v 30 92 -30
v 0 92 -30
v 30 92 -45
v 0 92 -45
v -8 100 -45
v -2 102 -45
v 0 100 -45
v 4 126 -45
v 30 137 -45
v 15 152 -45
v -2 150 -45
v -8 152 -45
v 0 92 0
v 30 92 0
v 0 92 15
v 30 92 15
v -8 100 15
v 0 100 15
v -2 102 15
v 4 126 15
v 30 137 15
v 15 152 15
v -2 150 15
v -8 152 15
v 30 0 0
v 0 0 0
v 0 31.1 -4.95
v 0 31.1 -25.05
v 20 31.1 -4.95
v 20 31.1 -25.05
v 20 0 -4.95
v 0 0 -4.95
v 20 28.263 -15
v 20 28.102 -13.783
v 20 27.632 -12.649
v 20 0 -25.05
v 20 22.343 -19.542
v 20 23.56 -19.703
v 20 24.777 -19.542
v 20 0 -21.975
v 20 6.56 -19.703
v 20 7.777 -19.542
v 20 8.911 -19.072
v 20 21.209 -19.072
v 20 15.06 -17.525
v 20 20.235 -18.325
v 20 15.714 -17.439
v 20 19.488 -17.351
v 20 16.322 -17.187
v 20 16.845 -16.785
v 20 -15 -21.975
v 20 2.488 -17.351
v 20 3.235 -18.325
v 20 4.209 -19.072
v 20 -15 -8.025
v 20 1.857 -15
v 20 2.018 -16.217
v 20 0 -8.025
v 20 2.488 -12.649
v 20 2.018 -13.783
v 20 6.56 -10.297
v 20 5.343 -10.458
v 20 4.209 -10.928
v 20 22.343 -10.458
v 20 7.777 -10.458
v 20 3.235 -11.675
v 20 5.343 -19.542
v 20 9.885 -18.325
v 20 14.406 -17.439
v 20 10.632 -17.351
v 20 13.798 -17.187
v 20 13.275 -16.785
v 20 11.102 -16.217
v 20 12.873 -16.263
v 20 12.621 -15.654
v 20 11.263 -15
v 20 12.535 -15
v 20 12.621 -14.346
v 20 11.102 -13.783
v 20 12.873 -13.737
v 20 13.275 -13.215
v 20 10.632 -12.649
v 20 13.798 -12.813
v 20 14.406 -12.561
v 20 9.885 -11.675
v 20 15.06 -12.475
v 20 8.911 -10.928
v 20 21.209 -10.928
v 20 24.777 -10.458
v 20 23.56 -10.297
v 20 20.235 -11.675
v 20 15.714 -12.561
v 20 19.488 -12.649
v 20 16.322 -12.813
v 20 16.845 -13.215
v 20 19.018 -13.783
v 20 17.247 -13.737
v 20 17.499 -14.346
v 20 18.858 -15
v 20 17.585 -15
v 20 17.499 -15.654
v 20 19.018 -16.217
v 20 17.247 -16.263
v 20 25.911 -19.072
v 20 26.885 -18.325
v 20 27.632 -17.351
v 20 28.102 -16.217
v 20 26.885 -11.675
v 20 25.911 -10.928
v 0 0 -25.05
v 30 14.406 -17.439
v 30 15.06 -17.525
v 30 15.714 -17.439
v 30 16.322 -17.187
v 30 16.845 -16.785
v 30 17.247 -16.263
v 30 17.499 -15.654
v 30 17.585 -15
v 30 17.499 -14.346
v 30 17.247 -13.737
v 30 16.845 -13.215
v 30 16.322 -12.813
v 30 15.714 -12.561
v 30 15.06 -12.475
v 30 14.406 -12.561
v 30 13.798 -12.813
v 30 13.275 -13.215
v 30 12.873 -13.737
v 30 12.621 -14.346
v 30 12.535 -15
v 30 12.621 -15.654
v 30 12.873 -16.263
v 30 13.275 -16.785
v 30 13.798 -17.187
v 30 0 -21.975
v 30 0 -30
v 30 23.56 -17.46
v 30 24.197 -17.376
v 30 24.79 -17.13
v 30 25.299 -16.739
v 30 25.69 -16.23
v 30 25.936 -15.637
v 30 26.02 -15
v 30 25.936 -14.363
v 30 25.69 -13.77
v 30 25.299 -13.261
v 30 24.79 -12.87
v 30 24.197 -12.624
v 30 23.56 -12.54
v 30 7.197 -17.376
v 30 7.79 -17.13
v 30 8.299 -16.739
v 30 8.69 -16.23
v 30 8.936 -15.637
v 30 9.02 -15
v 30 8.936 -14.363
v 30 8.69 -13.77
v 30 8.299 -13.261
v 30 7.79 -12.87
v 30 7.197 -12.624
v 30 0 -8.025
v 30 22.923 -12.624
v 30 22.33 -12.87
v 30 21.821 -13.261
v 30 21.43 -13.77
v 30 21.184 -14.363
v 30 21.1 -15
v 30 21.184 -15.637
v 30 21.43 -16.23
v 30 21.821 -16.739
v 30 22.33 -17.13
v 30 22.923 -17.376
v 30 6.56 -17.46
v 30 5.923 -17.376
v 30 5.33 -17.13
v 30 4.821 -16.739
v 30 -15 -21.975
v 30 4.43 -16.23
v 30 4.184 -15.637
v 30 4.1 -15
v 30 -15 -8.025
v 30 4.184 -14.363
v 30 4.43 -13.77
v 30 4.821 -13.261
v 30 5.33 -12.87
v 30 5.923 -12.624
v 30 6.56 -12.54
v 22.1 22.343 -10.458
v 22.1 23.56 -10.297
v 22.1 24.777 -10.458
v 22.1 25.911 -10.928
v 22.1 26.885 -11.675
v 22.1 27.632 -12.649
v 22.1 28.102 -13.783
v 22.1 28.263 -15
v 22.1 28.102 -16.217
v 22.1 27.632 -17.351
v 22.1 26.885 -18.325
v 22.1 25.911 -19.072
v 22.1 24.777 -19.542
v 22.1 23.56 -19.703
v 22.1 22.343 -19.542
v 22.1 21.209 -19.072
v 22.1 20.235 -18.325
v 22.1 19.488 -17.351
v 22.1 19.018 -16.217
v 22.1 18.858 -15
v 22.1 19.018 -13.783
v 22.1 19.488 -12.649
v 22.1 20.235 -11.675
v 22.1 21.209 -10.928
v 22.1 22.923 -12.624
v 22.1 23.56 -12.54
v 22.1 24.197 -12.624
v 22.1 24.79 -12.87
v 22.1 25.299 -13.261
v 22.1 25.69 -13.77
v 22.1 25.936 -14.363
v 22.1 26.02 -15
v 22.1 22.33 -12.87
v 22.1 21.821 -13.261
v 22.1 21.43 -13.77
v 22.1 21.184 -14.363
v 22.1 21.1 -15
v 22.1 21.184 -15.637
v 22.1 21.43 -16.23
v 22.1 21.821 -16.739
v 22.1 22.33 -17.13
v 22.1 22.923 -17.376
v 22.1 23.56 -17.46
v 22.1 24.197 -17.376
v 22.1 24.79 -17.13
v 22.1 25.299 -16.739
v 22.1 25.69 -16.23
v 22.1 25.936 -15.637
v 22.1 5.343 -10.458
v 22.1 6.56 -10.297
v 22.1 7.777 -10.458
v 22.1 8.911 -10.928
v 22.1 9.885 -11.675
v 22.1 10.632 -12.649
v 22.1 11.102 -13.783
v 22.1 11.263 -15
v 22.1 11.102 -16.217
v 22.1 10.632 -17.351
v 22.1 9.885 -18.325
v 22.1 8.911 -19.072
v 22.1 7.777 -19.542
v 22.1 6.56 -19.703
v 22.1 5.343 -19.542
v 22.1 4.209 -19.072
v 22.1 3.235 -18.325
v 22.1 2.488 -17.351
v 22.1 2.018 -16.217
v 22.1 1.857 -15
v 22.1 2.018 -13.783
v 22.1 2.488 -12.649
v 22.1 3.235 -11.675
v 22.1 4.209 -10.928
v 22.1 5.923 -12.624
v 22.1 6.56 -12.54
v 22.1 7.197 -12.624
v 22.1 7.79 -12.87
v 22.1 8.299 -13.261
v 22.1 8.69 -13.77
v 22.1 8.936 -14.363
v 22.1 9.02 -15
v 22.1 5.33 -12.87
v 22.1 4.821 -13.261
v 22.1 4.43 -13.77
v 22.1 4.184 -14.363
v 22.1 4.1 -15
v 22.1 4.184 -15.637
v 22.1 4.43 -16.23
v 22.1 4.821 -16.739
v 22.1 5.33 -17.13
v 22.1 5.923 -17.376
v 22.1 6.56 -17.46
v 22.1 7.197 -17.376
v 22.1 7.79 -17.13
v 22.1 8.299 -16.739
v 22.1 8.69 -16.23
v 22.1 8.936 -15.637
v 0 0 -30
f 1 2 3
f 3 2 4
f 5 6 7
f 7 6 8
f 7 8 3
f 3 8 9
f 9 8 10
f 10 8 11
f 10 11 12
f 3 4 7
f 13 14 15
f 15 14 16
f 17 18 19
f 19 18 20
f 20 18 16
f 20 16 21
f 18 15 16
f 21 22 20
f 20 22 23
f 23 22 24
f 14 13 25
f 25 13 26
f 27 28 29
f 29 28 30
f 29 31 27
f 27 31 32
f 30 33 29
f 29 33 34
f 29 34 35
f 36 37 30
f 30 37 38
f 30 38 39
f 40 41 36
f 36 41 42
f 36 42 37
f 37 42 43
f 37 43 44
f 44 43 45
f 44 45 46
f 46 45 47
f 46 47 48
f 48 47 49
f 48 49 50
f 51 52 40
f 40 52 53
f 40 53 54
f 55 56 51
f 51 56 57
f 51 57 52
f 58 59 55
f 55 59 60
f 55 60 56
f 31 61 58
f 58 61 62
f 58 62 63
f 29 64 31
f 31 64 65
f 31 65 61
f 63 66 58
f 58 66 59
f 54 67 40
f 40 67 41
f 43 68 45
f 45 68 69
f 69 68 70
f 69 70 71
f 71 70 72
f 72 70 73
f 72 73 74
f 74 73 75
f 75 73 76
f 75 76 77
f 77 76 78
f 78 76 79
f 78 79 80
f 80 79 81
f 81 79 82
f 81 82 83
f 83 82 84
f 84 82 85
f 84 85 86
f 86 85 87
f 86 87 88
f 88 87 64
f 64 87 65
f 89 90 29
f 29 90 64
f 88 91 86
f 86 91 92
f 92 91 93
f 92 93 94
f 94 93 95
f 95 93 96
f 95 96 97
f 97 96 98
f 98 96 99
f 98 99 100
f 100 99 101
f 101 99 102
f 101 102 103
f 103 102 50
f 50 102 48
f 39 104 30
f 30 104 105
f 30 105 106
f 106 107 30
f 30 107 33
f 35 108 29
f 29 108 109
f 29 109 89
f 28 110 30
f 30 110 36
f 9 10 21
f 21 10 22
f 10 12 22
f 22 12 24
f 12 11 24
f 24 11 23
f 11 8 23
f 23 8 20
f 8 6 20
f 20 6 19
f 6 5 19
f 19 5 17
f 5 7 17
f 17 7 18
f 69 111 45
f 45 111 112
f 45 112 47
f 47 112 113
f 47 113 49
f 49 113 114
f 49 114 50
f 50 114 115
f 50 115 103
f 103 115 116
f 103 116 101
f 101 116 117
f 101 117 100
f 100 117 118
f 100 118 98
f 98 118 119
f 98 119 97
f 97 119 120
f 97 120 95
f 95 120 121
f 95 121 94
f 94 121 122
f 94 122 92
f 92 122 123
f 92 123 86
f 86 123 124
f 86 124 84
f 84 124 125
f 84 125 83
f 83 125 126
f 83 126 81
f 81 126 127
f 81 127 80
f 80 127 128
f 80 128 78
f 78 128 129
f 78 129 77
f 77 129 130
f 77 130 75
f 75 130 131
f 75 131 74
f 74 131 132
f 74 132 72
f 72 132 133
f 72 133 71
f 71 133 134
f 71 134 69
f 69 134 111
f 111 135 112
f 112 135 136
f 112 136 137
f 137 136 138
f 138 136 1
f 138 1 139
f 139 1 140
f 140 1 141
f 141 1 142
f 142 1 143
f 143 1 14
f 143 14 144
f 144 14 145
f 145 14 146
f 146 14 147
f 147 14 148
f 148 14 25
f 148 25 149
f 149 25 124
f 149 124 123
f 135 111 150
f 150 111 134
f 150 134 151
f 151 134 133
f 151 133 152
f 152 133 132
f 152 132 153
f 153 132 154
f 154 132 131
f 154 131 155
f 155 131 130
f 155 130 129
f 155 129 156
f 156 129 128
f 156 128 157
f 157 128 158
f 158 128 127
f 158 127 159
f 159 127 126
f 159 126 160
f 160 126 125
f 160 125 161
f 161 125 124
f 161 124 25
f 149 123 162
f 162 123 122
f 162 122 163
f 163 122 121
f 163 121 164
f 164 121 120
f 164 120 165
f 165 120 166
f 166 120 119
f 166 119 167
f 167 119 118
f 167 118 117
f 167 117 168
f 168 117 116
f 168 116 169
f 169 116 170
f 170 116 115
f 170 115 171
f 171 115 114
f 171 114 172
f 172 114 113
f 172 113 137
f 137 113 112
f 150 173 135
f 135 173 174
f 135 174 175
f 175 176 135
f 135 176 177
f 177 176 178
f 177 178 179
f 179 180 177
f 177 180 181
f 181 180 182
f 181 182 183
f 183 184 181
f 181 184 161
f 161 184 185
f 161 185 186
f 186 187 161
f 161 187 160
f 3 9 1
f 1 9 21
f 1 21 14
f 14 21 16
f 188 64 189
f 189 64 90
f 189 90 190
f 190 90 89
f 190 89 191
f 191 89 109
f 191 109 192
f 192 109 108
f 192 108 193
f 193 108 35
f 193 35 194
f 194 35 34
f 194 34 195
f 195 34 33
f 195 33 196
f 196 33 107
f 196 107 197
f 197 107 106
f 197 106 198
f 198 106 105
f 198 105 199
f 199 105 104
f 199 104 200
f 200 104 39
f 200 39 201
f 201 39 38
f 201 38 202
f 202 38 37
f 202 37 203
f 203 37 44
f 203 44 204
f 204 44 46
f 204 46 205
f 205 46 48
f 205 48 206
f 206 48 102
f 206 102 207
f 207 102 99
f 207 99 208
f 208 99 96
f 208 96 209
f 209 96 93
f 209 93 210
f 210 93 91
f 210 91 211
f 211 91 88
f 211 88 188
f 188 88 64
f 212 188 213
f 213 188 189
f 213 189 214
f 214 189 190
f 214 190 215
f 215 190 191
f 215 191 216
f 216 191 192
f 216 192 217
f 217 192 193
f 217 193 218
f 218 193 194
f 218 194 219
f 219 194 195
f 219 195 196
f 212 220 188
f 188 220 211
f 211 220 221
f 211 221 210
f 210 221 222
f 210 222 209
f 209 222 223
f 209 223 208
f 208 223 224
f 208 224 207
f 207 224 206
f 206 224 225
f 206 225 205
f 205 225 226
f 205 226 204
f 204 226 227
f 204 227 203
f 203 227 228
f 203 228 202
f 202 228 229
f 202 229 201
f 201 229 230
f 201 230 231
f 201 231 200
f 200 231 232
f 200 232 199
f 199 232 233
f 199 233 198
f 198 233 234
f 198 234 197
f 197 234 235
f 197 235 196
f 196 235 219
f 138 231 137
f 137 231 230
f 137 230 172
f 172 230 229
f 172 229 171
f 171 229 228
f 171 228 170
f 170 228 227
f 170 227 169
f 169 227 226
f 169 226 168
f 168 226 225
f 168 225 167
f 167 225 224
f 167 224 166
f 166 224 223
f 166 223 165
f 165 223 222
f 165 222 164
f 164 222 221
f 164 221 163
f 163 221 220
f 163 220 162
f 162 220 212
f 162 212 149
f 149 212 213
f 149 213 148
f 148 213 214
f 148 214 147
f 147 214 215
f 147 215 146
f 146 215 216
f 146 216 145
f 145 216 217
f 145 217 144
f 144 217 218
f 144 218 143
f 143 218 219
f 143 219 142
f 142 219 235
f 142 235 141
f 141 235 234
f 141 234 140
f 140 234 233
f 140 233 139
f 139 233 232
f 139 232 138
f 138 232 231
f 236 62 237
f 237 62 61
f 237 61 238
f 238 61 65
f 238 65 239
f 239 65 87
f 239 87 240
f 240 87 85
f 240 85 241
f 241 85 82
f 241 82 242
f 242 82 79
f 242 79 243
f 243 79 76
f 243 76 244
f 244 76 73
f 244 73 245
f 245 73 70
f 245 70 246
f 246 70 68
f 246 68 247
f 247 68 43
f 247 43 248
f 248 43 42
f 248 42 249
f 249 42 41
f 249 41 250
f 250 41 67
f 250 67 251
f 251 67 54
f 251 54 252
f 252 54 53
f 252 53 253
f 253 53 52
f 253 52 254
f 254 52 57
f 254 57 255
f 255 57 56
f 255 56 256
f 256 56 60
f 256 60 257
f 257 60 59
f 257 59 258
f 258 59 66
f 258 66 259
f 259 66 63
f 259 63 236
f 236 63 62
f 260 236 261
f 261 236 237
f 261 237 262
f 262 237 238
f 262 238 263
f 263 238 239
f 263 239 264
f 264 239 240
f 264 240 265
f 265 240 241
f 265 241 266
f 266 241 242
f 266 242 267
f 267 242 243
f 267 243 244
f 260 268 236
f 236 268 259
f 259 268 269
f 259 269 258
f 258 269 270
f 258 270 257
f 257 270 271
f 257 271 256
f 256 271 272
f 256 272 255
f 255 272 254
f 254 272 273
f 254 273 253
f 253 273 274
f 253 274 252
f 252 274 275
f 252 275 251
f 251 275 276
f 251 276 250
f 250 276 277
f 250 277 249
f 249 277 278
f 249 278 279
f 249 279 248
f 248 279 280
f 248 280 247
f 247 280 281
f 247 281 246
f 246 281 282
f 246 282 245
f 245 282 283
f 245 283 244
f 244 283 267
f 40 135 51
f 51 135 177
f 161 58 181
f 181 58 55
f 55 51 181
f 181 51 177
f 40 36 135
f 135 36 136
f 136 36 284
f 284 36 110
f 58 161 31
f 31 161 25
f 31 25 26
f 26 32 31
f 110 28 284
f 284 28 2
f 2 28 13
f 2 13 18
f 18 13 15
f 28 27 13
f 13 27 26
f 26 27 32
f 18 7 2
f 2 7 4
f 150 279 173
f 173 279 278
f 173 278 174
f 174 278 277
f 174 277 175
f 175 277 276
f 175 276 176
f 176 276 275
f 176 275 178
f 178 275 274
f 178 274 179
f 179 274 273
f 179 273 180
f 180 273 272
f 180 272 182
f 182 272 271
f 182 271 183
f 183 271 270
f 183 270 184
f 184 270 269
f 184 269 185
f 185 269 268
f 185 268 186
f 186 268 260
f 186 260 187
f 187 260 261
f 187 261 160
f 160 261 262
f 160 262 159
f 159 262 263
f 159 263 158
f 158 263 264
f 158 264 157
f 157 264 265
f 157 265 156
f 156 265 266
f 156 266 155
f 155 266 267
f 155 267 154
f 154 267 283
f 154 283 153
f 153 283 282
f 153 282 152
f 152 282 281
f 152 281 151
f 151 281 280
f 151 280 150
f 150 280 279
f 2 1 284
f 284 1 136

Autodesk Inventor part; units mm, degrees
ref_plane "YZ Plane" through (0, 0, 0) normal (1, 0, 0) x (0, 1, 0)
ref_plane "XZ Plane" through (0, 0, 0) normal (0, 1, 0) x (-1, 0, 0)
sketch "Sketch1" plane through (0, 0, 0) normal (0, 0, 1) x (1, 0, 0)
  line L0 (0, 0) -> (25, 0)
  line L1 (25, 0) -> (25, 40)
  line L2 (25, 40) -> (0, 40)
  line L3 (0, 40) -> (0, 0)
  dimension "d1" = 25
  dimension "d2" = 40
  dimension "d3" = 25
extrude "Extrusion1" add sketch "Sketch1" against normal blind 30
sketch "Sketch2" plane through (25, 0, 0) normal (1, 0, 0) x (0, 0, -1)
  line L0 (0, 0) -> (30, 0) projected
  circle A0 centre (15, 6.56) radius 2.46
extrude "Extrusion2" cut sketch "Sketch2" against normal blind 30
sketch "Sketch3" plane through (0, 0, 0) normal (-1, 0, 0) x (0, 0, 1)
  line L0 (0, 0) -> (-30, 0) projected
  line L1 (-25.05, 0) -> (-4.95, 0)
  line L2 (-4.95, 0) -> (-4.95, 33.12)
  line L3 (-4.95, 33.12) -> (-25.05, 33.12)
  line L4 (-25.05, 33.12) -> (-25.05, 0)
  dimension "d11" = 20.1
extrude "Extrusion3" cut sketch "Sketch3" against normal blind 20
sketch "Sketch4" plane through (0, 0, 0) normal (0, -1, 0) x (1, 0, 0)
  line L0 (20, -4.95) -> (20, -25.05) projected
  line L1 (20, -15) -> (25, -15)
  line L2 (25, 0) -> (25, -30) projected
  line L3 (20, -8.025) -> (25, -8.025)
  line L4 (25, -8.025) -> (25, -21.975)
  line L5 (25, -21.975) -> (20, -21.975)
  line L6 (20, -21.975) -> (20, -8.025)
  line L7 (20, -8.025) -> (25, -21.975) construction
  line L8 (25, -8.025) -> (20, -21.975) construction
  line L9 (25, -12.54) -> (25, -17.46) projected
  point P0 (0, 0)
  point P1 (22.5, -15)
  dimension "d14" = 13.95
extrude "Extrusion4" add sketch "Sketch4" along normal blind 15
sketch "Sketch5" plane through (20, 0, 0) normal (-1, 0, 0) x (0, 0, 1)
  circle A0 centre (-15, 6.56) radius 2.46 projected
  circle A1 centre (-15, 6.56) radius 4.7025
  circle A2 centre (-15, 6.56) radius 2.46 projected
  circle A3 centre (-15, 6.56) radius 2.46
  point P0 (0, 0)
  dimension "d17" = 9.405
extrude "Extrusion5" cut sketch "Sketch5" against normal blind 2.1
sketch "Sketch6" plane through (25, 0, 0) normal (1, 0, 0) x (0, 0, -1)
  circle A0 centre (15, 6.56) radius 4.7025 projected
  line L0 (15, 6.56) -> (15, 23.56)
  circle A1 centre (15, 23.56) radius 2.46
  point P0 (0, 0)
  dimension "d20" = 17
  dimension "d21" = 4.92
extrude "Extrusion6" cut sketch "Sketch6" against normal blind 10 contours A1
sketch "Sketch7" plane through (20, 0, 0) normal (-1, 0, 0) x (0, 0, 1)
  circle A0 centre (-15, 23.56) radius 2.46 projected
  circle A1 centre (-15, 23.56) radius 4.7025
  point P0 (0, 0)
  dimension "d24" = 9.405
extrude "Extrusion7" cut sketch "Sketch7" against normal blind 2.1
sketch "Sketch9" plane through (25, 0, 0) normal (1, 0, 0) x (0, 0, -1)
  circle A0 centre (15, 6.56) radius 2.46 projected
  circle A1 centre (15, 6.56) radius 2.46
  circle A2 centre (15, 23.56) radius 2.46 projected
  circle A3 centre (15, 23.56) radius 2.46
  line L0 (30, 40) -> (30, 0) projected
  line L1 (30, 0) -> (30, 40)
  line L2 (30, 40) -> (0, 40)
  line L3 (0, 40) -> (0, 0)
  line L4 (0, 0) -> (8.025, 0) projected
  line L5 (21.975, 0) -> (21.975, -15)
  line L6 (21.975, -15) -> (8.025, -15)
  line L7 (8.025, -15) -> (8.025, 0)
  line L8 (0, 0) -> (8.025, 0)
  line L9 (21.975, 0) -> (30, 0)
extrude "Extrusion8" add sketch "Sketch9" along normal blind 5
sketch "Sketch10" plane through (0, 40, 0) normal (0, 1, 0) x (1, 0, 0)
  line L0 (0, 30) -> (30, 30) projected
  line L1 (30, 0) -> (0, 0) projected
  line L2 (0, 30) -> (30, 30)
  line L3 (30, 30) -> (30, 0)
  line L4 (30, 0) -> (0, 0)
  line L5 (0, 0) -> (0, 30)
extrude "Extrusion9" add sketch "Sketch10" along normal blind 30
sketch "Sketch12" plane through (30, 0, 0) normal (1, 0, 0) x (0, 0, -1)
  circle A0 centre (15, 6.56) radius 2.46 projected
  line L0 (15, 6.56) -> (15, 15.06)
  circle A1 centre (15, 15.06) radius 2.525
  point P0 (0, 0)
  dimension "d31" = 8.5
  dimension "d33" = 5.05
extrude "Extrusion10" cut sketch "Sketch12" against normal blind 30 contours A1
sketch "Sketch14" plane through (0, 0, 0) normal (0, 0, 1) x (1, 0, 0)
  line L0 (30, 70) -> (0, 70) projected
  line L1 (0, 100) -> (-8, 100)
  line L2 (30, 0) -> (30, 70) projected
  line L3 (30, 118) -> (30, 70)
  line L4 (30, 105) -> (30, 100)
  line L5 (0, 70) -> (30, 70) projected
  line L6 (0, 70) -> (0, 100)
  line L7 (30, 122.5) -> (30, 118)
  line L8 (-2, 150) -> (-8, 152)
  line L9 (-2, 102) -> (-8, 100)
  line L10 (-2, 102) -> (4, 126)
  line L11 (4, 126) -> (-2, 150)
  line L12 (-8, 152) -> (15, 152)
  line L13 (30, 137) -> (15, 152)
  line L14 (30, 122.5) -> (30, 137)
  point P0 (0, 0)
  dimension "d47" = 30
extrude "Extrusion12" add sketch "Sketch14" against normal blind 30
sketch "Sketch15" plane through (0, 0, -25.05) normal (-1, 0, 0) x (0, 0, 1)
  line L0 (0, 33.12) -> (20.1, 33.12) projected
  line L1 (20.1, 33.12) -> (20.1, 0) projected
  line L2 (0, 33.12) -> (20.1, 33.12)
  line L3 (20.1, 33.12) -> (20.1, 31.1)
  line L4 (20.1, 31.1) -> (0, 31.1)
  line L5 (0, 31.1) -> (0, 33.12)
  point P0 (25.05, 0)
  dimension "d57" = 2.02
extrude "Extrusion13" add sketch "Sketch15" against normal blind 20
sketch "Sketch25" plane through (0, 0, 0) normal (0, 0, 1) x (1, 0, 0)
  point P0 (0, 0)
sketch "Sketch26" plane through (0, 0, 0) normal (0, 0, 1) x (1, 0, 0)
  line L0 (-8, 100) -> (0, 100) projected
  line L1 (0, 100) -> (-8, 100)
  line L2 (-8, 100) -> (-2, 102) projected
  line L3 (-8, 100) -> (-2, 102)
  line L4 (-2, 102) -> (4, 126) projected
  line L5 (-2, 102) -> (4, 126)
  line L6 (4, 126) -> (-2, 150) projected
  line L7 (4, 126) -> (-2, 150)
  line L8 (-8, 152) -> (-2, 150) projected
  line L9 (-2, 150) -> (-8, 152)
  line L10 (15, 152) -> (-8, 152) projected
  line L11 (-8, 152) -> (15, 152)
  line L12 (30, 137) -> (15, 152) projected
  line L13 (15, 152) -> (30, 137)
  line L14 (30, 137) -> (30, 92)
  line L15 (30, 0) -> (30, 137) projected
  line L16 (30, 92) -> (0, 92)
  line L17 (0, 0) -> (0, 100) projected
  line L18 (0, 100) -> (0, 92)
  dimension "d93" = 45
extrude "Extrusion14" add sketch "Sketch26" along normal blind 15
ref_plane "Work Plane1" through (0, 0, -15) normal (0, 0, 1) x (1, 0, 0)
mirror "Mirror1" about plane through (0, 0, -15) normal (0, 0, 1) of "Extrusion14"
properties part number "48mm_x_60mm"
